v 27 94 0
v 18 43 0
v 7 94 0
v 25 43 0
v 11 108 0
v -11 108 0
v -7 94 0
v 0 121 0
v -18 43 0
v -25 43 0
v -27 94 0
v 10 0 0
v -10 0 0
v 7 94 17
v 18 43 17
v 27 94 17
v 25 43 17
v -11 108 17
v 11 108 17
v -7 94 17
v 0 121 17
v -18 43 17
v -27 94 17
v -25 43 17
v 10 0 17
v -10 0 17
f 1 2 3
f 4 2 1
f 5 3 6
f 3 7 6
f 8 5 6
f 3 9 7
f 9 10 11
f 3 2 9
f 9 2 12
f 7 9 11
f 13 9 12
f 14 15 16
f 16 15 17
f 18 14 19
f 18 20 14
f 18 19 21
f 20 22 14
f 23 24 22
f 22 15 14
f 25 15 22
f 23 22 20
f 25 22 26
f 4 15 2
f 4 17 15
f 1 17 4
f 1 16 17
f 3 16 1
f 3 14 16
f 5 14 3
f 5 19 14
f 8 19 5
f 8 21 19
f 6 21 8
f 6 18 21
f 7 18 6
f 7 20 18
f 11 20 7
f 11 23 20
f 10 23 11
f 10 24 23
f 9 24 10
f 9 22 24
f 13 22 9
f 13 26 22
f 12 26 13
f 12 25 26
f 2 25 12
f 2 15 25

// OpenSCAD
linear_extrude(height=17)
polygon(points = [[10,0], [18,43], [25,43] ,[27,94],[7,94],[11,108],[0,121],[-11,108],[-7,94],[-27,94],[-25,43],[-18,43],[-10,0]]);
